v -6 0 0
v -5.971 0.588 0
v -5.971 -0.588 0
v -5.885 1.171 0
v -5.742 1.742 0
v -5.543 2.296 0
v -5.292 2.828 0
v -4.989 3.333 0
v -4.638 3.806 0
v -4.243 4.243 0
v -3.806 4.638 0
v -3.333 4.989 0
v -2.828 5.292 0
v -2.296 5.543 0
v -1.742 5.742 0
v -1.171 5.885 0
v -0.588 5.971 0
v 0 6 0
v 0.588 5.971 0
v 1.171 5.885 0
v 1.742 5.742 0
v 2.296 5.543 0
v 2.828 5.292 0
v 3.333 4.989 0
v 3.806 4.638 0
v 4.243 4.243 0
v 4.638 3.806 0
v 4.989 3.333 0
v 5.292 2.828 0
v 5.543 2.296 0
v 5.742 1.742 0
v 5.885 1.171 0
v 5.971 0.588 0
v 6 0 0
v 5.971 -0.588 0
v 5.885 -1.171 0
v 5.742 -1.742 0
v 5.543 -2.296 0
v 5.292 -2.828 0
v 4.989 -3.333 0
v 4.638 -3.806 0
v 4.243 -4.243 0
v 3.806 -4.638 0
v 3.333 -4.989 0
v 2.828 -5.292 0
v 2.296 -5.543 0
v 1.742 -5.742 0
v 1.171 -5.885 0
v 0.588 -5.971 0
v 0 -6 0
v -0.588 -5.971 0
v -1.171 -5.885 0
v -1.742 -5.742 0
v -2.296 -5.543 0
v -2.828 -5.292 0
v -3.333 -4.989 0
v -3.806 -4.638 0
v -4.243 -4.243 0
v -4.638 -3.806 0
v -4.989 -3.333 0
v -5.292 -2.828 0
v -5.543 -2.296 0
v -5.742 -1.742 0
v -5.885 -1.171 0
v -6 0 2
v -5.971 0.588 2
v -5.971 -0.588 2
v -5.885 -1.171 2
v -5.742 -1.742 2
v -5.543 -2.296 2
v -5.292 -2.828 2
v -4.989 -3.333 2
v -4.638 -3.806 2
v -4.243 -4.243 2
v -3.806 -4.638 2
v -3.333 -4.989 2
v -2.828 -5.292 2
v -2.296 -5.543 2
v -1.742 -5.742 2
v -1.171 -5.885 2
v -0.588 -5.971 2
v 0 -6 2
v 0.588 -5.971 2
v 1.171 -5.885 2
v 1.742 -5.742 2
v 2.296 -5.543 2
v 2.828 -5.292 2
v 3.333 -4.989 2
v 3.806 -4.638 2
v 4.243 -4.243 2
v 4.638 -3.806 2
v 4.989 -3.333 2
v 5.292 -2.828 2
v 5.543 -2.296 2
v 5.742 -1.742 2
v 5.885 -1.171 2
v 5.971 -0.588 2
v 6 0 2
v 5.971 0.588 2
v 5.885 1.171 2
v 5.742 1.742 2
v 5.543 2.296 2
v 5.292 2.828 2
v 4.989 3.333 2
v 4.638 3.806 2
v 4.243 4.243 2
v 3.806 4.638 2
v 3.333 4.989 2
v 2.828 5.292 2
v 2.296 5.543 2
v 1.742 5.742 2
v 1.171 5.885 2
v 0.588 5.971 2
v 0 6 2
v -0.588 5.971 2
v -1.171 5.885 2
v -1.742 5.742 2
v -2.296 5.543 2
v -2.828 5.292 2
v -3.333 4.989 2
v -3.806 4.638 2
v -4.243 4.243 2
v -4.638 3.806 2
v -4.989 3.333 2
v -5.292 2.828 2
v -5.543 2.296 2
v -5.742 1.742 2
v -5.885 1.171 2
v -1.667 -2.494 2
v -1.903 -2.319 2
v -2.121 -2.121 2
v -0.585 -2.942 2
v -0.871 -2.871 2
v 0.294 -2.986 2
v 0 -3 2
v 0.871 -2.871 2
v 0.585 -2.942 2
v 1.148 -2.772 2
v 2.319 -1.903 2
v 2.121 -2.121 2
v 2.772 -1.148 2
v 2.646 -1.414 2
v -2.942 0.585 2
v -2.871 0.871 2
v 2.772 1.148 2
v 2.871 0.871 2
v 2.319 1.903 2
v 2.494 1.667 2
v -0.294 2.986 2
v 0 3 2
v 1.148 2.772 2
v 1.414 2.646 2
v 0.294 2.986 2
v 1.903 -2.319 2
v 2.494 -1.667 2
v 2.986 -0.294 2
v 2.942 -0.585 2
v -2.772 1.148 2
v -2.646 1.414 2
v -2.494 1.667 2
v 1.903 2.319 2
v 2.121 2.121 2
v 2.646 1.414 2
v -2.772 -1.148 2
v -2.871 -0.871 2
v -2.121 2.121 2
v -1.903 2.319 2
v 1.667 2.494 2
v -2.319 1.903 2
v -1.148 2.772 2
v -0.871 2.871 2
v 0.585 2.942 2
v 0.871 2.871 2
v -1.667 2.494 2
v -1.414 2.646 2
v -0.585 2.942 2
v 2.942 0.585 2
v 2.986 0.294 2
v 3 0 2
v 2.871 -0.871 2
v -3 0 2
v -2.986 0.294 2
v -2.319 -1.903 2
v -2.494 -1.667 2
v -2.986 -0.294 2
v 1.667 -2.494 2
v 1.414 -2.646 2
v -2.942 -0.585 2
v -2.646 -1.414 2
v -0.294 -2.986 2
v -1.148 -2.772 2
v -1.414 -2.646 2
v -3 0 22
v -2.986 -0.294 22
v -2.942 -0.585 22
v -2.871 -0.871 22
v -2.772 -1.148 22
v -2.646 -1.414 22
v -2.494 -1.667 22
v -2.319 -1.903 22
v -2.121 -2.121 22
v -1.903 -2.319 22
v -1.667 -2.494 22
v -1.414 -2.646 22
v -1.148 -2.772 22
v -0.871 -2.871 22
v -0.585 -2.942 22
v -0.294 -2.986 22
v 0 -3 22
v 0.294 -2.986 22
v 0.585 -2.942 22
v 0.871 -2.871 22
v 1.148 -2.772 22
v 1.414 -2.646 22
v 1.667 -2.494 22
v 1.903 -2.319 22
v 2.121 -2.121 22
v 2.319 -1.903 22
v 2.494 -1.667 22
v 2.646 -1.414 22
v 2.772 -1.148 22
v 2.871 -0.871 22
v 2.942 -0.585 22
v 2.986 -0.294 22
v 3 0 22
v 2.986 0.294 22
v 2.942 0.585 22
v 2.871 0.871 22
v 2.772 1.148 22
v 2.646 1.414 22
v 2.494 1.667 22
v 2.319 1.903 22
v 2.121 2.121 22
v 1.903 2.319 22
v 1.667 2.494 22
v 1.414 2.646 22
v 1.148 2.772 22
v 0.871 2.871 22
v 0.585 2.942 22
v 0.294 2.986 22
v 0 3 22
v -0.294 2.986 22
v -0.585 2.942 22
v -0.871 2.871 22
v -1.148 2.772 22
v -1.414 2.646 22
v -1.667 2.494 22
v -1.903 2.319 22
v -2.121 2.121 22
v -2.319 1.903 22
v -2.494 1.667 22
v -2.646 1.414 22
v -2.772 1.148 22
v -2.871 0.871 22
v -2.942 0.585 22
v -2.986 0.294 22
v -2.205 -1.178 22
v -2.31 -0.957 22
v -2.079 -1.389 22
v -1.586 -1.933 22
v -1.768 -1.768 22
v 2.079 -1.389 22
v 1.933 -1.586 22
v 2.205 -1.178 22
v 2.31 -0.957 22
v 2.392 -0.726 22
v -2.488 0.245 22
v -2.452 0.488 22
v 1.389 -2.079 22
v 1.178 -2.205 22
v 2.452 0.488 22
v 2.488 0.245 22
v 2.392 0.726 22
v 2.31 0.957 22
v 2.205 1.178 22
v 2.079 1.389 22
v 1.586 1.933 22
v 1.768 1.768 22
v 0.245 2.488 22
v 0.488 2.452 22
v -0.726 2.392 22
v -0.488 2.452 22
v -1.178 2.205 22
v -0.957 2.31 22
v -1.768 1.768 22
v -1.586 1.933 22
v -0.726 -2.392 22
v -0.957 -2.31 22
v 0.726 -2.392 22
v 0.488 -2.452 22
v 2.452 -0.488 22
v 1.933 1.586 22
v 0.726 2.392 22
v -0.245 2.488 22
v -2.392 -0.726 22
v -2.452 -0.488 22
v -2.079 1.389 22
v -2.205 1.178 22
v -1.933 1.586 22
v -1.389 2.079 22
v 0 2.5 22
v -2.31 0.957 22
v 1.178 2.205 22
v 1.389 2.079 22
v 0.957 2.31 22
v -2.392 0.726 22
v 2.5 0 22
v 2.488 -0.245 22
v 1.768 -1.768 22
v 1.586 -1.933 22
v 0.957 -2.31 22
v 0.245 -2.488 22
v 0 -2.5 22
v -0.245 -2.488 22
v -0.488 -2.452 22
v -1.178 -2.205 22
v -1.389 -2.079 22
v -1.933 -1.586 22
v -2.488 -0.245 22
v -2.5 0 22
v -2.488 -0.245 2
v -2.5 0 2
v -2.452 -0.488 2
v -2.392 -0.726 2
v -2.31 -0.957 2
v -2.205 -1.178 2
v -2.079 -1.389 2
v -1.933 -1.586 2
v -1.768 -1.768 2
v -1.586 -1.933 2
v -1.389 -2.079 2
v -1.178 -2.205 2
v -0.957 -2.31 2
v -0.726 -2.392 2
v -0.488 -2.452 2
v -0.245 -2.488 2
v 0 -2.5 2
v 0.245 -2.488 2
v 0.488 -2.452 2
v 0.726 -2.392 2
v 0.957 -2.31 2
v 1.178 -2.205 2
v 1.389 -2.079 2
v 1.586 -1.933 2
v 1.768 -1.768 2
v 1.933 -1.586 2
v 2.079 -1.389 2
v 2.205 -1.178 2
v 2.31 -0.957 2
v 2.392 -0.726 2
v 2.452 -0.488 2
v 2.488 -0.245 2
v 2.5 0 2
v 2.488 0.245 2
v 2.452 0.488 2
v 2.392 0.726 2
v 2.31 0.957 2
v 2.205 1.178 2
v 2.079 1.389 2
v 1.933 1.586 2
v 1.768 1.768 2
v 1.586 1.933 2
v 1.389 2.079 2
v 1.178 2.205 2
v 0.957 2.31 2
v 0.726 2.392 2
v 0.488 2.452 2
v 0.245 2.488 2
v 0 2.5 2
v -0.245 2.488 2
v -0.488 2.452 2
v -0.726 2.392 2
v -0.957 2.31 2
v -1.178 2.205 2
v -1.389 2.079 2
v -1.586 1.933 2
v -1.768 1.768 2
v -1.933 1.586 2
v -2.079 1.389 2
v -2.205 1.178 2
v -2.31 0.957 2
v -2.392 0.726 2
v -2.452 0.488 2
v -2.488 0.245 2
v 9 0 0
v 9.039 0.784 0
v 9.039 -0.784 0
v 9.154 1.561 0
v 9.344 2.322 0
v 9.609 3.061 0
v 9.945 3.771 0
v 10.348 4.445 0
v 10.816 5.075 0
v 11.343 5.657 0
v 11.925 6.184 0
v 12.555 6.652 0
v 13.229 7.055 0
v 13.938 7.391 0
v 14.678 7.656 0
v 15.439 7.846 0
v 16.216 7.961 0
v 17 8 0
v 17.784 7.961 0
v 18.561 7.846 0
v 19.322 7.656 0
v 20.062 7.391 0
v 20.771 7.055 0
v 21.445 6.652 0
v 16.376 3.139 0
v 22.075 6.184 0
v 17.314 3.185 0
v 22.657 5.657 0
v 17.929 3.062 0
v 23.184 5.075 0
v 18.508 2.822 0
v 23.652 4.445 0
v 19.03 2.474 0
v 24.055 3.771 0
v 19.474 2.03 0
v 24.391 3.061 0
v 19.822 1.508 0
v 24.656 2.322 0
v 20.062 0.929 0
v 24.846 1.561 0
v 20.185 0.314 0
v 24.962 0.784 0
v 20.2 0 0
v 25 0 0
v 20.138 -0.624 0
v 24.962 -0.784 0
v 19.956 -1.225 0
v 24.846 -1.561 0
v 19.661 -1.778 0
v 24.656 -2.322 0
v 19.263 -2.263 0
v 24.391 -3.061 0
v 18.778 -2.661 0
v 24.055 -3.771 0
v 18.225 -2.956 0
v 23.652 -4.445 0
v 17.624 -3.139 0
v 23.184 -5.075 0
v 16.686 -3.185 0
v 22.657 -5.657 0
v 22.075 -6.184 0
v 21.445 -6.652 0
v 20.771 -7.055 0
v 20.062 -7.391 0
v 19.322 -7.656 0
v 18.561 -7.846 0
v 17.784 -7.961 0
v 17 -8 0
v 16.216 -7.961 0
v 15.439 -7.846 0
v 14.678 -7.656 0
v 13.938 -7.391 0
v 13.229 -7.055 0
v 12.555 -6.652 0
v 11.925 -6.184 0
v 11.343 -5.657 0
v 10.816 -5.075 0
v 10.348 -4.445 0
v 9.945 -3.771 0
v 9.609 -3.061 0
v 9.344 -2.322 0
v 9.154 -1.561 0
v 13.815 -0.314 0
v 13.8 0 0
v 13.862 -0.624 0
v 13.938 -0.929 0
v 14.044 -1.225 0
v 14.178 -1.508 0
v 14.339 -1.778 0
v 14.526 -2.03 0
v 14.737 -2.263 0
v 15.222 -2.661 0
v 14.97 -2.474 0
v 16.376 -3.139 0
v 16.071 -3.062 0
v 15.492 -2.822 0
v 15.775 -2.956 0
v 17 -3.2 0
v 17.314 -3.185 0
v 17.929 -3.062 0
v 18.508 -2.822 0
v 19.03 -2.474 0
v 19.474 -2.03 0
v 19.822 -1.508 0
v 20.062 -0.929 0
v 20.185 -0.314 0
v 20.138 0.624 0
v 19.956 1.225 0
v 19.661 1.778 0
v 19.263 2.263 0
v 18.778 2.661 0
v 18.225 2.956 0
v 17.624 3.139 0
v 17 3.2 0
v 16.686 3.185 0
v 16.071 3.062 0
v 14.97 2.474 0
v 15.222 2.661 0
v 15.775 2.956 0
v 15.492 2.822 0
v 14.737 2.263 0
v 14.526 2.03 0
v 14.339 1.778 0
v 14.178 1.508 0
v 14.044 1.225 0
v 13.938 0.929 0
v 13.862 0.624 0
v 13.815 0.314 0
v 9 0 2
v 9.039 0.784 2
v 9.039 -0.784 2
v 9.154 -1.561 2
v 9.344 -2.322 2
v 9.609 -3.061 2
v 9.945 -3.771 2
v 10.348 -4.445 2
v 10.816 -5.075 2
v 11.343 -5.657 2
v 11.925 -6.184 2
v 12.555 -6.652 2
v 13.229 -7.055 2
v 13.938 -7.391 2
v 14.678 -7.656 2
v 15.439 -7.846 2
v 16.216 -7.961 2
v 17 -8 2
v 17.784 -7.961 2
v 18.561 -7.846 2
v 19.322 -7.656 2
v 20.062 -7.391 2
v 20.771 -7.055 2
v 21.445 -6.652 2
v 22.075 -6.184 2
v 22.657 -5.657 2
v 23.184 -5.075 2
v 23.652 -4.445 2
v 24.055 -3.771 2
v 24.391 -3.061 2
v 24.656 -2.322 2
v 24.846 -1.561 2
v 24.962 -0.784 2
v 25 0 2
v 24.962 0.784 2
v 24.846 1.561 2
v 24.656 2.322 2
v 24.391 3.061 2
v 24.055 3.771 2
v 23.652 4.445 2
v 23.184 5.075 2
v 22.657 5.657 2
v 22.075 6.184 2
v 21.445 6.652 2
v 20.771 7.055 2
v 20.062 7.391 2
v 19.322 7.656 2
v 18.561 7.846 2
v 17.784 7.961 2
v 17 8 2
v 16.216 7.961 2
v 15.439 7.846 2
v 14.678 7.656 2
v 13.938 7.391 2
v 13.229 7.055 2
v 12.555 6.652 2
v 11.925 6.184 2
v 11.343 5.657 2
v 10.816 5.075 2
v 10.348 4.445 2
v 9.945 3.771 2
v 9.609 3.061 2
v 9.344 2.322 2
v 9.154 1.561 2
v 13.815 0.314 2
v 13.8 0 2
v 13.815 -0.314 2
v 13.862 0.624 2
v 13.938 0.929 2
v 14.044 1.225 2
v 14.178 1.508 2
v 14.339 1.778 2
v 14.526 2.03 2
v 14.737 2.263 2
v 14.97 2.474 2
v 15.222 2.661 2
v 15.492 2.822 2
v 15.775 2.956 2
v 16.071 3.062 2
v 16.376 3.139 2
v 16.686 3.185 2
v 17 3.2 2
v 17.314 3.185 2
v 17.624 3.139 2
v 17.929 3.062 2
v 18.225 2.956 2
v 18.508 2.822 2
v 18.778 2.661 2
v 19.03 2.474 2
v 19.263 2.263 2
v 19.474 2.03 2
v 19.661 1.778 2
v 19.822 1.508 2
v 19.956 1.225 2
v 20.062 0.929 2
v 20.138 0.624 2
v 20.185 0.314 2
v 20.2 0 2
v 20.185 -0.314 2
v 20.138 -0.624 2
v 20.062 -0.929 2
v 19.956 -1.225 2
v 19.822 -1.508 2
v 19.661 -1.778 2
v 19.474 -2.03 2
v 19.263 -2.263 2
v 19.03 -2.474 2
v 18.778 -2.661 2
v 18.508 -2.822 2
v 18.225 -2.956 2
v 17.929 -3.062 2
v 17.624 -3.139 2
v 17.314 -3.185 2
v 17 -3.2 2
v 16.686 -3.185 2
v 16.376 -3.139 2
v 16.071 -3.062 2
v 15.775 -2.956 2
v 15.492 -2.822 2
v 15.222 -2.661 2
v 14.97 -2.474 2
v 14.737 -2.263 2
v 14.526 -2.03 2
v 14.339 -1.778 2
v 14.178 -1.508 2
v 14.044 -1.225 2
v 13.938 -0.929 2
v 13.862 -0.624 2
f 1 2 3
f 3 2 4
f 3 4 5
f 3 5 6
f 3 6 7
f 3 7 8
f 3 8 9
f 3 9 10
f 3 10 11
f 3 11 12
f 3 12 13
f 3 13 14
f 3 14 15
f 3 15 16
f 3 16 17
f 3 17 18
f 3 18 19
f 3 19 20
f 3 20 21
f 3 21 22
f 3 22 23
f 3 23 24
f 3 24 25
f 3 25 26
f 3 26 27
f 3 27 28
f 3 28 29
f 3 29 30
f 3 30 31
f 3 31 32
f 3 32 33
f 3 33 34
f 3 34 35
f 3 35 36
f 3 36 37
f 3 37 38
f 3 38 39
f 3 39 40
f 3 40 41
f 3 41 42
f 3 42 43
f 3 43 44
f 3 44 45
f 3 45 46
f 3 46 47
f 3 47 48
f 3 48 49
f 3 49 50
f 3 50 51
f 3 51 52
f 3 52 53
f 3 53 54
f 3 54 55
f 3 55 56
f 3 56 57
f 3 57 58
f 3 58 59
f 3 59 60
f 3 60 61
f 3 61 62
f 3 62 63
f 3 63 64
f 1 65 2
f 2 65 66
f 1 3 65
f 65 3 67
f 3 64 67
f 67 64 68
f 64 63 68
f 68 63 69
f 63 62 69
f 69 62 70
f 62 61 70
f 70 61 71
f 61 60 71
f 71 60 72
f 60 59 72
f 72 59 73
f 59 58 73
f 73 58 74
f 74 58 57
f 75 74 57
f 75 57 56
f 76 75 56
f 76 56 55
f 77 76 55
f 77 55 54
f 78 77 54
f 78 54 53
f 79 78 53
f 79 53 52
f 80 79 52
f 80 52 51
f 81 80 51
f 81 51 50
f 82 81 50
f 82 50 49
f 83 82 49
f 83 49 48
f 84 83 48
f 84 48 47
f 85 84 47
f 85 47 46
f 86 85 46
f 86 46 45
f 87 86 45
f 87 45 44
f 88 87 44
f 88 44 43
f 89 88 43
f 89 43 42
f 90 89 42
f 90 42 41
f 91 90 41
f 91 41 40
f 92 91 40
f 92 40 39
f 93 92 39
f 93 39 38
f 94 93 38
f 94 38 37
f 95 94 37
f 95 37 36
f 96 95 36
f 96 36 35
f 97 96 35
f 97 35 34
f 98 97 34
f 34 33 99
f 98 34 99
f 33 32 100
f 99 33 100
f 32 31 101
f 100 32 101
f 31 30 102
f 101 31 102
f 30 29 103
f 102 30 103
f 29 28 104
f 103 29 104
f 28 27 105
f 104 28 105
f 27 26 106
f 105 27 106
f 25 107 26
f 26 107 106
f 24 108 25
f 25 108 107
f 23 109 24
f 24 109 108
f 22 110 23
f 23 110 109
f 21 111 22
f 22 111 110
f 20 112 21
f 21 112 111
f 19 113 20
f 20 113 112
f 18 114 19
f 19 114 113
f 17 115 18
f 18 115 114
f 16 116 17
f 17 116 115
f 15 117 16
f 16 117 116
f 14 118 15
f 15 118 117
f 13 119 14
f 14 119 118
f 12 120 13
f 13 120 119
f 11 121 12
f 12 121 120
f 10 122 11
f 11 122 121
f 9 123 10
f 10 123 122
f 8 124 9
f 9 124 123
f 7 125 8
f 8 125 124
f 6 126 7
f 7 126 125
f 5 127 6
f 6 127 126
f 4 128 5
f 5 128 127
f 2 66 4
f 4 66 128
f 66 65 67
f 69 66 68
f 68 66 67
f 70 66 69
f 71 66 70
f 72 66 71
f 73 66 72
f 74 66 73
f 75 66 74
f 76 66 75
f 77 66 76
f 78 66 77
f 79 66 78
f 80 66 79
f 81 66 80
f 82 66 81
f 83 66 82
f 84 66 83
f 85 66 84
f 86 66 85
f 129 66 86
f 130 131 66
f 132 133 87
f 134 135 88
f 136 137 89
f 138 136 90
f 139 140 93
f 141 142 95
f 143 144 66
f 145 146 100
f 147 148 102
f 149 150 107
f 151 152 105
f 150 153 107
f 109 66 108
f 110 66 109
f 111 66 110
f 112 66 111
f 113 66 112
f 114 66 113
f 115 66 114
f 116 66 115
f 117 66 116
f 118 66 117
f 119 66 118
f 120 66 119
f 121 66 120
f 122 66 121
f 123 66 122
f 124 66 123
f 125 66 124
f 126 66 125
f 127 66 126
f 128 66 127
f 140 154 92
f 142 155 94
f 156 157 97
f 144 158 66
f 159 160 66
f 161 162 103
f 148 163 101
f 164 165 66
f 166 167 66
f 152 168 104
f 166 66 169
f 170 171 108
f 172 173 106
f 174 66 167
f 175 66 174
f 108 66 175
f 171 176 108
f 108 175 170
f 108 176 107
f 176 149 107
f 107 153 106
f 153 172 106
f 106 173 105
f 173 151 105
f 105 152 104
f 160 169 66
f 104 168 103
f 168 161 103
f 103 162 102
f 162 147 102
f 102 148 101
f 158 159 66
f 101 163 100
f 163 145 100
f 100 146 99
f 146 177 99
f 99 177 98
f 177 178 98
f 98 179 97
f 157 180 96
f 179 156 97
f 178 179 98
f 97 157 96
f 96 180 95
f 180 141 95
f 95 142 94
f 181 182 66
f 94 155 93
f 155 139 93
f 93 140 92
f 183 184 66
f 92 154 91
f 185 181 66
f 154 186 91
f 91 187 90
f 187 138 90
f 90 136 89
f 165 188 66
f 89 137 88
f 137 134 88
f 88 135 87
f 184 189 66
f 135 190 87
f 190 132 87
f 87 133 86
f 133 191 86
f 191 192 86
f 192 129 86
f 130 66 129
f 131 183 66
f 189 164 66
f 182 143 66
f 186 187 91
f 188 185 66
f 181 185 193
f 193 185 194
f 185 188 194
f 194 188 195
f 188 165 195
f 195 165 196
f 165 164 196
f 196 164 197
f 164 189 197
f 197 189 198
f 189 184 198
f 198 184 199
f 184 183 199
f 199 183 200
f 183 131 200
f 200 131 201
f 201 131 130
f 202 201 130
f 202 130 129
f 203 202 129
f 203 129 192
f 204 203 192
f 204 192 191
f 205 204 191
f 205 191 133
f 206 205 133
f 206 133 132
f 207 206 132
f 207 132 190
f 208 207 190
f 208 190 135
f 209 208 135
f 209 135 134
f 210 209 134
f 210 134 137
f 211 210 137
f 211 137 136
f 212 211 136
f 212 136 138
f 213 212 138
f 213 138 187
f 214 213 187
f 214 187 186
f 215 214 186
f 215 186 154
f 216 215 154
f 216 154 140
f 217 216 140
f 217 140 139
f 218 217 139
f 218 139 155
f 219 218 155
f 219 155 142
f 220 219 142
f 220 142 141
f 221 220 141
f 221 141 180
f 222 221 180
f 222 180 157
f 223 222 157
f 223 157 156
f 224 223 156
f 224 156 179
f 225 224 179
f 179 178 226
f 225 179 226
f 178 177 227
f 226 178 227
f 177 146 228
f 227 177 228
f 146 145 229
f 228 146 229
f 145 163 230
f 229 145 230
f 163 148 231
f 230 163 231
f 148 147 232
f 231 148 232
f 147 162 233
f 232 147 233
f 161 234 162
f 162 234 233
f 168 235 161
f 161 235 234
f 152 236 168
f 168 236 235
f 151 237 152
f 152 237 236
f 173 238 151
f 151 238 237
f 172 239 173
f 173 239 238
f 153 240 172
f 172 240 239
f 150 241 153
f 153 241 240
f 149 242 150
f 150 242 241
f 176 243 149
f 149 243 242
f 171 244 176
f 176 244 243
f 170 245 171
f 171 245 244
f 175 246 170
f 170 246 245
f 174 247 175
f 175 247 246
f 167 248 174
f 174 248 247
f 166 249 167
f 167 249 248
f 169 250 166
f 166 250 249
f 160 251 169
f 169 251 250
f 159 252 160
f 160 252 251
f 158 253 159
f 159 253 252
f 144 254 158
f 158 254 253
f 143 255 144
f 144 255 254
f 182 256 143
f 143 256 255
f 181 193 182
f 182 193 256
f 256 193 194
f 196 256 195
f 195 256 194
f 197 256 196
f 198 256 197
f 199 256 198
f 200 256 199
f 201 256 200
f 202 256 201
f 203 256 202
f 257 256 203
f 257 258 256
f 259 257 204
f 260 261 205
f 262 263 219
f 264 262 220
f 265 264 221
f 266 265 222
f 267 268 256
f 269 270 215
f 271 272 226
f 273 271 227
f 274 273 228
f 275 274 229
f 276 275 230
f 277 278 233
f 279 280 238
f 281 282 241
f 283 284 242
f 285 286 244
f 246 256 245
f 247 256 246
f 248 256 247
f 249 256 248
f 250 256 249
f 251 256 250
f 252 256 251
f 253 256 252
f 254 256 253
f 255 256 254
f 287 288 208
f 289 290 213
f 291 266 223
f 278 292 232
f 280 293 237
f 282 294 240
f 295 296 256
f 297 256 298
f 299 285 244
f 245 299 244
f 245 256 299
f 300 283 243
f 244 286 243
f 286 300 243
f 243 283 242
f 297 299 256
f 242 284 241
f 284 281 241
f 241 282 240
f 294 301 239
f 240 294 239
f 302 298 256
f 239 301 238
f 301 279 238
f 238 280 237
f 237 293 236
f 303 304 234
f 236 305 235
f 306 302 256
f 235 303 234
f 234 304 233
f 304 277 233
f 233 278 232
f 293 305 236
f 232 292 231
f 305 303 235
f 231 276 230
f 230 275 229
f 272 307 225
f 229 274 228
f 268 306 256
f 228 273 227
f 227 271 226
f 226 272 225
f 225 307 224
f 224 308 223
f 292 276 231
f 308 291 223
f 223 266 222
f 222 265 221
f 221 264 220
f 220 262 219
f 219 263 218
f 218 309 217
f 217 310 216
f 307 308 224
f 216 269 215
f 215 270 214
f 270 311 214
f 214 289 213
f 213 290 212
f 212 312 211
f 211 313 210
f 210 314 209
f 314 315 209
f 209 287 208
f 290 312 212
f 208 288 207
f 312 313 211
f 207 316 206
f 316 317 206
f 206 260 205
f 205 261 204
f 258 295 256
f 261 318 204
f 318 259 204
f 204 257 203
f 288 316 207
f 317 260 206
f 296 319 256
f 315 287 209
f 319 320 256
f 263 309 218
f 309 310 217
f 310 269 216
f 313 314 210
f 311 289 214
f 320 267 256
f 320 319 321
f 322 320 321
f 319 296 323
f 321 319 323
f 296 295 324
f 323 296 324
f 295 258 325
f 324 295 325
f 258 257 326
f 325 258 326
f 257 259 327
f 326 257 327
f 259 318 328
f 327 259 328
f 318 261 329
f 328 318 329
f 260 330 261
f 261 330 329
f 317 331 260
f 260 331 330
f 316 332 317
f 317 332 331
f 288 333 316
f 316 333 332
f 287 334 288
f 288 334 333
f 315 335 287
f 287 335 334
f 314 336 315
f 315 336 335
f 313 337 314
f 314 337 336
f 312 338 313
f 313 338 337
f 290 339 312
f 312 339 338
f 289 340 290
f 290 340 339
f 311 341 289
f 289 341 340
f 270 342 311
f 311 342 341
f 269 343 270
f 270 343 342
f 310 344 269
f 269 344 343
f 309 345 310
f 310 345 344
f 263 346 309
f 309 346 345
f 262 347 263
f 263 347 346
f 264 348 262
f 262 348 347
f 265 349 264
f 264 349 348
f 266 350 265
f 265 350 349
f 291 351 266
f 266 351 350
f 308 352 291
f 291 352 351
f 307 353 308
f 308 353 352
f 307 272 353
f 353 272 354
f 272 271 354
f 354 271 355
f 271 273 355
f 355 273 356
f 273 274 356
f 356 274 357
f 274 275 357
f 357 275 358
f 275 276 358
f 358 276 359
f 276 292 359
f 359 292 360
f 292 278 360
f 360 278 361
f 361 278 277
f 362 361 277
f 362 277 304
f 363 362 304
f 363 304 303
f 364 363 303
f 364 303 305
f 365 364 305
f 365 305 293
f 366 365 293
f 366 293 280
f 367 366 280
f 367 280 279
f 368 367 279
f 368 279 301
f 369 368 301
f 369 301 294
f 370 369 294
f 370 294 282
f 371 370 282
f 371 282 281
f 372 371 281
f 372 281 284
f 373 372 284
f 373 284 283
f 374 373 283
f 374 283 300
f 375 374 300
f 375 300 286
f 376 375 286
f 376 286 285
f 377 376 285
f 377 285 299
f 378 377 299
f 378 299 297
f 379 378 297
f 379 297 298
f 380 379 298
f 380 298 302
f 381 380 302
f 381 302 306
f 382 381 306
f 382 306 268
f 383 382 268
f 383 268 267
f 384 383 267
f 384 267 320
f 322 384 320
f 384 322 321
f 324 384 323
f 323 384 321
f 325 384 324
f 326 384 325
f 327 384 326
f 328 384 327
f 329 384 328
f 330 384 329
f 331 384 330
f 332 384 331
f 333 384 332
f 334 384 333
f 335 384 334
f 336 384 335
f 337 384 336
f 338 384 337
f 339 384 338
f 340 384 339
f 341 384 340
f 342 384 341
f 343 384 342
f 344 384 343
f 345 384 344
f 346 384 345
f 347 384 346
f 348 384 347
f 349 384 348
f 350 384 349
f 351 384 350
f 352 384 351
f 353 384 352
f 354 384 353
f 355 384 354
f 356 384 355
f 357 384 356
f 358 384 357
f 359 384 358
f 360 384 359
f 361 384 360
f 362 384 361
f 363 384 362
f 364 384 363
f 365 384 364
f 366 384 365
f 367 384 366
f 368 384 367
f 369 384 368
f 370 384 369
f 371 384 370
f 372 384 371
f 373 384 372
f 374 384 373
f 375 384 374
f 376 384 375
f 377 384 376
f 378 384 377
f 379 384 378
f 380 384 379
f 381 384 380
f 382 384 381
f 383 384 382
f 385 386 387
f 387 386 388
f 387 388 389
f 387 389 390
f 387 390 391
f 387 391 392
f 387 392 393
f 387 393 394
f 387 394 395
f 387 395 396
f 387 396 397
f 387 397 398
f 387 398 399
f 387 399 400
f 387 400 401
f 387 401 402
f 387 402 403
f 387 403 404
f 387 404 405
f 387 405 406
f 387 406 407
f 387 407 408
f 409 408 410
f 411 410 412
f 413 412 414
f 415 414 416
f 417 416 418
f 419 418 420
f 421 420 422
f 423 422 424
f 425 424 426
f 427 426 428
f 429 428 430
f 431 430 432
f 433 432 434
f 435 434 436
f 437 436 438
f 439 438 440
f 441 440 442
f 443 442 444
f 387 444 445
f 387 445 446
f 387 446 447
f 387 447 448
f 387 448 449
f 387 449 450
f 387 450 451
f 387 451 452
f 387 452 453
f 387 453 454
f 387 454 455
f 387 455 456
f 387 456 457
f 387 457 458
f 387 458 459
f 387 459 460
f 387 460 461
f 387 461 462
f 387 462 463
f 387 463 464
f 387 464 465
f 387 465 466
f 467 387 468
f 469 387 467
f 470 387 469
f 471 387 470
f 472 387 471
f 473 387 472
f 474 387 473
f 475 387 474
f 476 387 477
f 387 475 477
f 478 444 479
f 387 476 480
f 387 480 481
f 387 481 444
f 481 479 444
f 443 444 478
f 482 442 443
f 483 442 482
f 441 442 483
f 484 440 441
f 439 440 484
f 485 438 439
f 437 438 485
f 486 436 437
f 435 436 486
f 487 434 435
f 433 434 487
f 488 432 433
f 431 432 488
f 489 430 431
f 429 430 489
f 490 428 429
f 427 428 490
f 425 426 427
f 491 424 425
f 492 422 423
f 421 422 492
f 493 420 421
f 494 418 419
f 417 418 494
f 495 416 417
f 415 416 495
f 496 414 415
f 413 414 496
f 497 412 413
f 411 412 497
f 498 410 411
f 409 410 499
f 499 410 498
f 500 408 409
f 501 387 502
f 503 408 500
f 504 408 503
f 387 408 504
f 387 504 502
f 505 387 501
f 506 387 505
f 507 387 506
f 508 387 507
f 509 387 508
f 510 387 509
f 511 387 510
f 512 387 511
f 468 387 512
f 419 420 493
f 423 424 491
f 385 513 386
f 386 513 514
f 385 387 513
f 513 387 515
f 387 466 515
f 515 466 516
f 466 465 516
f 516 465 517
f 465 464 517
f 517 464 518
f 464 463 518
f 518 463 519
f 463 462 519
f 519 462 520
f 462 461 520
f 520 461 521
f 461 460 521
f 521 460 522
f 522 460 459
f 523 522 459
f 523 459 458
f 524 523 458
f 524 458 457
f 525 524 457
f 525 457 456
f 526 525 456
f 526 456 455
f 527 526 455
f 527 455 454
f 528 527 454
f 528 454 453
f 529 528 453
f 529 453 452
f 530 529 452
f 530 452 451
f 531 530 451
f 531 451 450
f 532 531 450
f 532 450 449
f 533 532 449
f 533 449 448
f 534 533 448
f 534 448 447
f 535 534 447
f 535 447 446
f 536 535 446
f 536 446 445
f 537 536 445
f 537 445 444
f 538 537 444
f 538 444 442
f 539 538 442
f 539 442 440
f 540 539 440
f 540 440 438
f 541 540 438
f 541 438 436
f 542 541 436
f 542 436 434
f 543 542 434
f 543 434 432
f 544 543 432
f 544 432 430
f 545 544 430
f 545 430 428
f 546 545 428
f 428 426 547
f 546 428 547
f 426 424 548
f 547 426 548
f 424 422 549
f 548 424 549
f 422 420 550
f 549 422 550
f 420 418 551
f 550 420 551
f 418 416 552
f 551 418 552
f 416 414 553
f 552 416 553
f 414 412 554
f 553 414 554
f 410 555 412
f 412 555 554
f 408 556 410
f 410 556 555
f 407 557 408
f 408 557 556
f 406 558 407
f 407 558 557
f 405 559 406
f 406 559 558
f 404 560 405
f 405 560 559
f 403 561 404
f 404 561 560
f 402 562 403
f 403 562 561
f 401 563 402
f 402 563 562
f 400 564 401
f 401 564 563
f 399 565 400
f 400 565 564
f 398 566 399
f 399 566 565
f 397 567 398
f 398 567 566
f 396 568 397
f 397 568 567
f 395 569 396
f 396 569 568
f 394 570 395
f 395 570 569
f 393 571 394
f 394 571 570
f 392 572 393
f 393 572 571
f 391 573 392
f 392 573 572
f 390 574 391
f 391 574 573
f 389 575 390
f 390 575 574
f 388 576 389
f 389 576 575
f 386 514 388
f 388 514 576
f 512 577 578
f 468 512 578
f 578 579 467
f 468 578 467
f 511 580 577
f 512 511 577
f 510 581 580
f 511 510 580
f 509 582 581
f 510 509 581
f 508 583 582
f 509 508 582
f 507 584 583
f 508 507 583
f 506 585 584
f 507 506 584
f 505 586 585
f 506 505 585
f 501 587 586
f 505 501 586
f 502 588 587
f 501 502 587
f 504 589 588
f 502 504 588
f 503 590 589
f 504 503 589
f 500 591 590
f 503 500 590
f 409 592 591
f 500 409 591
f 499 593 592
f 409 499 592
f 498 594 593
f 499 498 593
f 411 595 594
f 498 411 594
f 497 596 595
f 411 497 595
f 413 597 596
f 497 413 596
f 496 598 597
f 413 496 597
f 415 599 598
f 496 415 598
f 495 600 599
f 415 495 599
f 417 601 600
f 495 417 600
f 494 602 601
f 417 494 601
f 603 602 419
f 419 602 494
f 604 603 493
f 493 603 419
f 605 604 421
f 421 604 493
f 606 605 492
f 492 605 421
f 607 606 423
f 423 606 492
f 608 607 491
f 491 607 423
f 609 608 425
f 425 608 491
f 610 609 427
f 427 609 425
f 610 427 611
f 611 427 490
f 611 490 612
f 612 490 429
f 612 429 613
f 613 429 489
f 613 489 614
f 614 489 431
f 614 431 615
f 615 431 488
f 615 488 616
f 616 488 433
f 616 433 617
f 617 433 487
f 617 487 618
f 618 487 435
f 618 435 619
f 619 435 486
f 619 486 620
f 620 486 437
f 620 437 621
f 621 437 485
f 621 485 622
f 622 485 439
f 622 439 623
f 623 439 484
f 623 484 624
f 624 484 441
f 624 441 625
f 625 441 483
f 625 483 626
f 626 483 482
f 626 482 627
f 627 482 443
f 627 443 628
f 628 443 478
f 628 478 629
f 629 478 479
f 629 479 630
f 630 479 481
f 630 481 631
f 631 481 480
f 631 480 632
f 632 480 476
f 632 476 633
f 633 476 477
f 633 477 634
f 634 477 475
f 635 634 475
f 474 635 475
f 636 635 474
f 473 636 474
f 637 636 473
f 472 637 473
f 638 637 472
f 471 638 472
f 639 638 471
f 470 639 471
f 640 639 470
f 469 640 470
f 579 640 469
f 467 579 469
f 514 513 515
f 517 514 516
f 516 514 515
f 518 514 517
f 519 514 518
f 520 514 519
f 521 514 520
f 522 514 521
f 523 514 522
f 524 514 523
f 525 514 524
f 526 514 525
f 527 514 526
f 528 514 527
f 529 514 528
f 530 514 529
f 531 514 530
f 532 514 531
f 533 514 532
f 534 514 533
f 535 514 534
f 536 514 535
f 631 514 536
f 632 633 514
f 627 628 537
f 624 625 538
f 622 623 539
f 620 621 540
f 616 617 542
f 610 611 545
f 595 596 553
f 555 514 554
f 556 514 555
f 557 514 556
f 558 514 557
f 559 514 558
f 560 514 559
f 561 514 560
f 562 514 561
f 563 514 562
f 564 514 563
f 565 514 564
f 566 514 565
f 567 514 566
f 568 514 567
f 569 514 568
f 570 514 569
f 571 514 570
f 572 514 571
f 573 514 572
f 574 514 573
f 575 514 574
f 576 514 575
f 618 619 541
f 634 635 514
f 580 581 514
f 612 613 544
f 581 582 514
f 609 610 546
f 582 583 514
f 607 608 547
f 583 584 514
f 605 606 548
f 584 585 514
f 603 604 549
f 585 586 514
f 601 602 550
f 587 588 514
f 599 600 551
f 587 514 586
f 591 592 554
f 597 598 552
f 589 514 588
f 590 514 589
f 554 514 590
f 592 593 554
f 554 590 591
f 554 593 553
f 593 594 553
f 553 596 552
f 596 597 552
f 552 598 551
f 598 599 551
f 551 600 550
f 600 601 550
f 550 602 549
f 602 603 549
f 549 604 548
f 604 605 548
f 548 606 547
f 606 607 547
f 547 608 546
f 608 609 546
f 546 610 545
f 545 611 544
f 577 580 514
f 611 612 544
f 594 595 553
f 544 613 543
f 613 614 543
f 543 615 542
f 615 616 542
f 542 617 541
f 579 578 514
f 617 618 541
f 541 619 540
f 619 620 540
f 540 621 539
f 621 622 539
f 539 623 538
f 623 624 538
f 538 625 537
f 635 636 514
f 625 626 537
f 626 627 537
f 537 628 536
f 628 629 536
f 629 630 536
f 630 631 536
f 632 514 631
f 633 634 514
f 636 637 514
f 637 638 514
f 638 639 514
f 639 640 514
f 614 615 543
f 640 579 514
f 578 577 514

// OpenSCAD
spacing = .2;
radius = 3;
thickness = .5;

union(){
	cylinder(r=radius+3, h=2, $fn=64);
	difference(){
		cylinder(r=radius, h=22, $fn=64);
		translate([0,0,-1]) cylinder(r=radius - thickness, h=24, $fn=64);
	}
}

// Make a fit test cylinder with some padding
translate([2* radius + 3 + 5 + 3,0,0]) {
difference(){
	cylinder(r=radius+5, h=2, $fn=64);
	translate([0,0,-1]) cylinder(r=3 + spacing, h=22, $fn=64);
}
%cylinder(r=radius, h=2, $fn=64);
}
